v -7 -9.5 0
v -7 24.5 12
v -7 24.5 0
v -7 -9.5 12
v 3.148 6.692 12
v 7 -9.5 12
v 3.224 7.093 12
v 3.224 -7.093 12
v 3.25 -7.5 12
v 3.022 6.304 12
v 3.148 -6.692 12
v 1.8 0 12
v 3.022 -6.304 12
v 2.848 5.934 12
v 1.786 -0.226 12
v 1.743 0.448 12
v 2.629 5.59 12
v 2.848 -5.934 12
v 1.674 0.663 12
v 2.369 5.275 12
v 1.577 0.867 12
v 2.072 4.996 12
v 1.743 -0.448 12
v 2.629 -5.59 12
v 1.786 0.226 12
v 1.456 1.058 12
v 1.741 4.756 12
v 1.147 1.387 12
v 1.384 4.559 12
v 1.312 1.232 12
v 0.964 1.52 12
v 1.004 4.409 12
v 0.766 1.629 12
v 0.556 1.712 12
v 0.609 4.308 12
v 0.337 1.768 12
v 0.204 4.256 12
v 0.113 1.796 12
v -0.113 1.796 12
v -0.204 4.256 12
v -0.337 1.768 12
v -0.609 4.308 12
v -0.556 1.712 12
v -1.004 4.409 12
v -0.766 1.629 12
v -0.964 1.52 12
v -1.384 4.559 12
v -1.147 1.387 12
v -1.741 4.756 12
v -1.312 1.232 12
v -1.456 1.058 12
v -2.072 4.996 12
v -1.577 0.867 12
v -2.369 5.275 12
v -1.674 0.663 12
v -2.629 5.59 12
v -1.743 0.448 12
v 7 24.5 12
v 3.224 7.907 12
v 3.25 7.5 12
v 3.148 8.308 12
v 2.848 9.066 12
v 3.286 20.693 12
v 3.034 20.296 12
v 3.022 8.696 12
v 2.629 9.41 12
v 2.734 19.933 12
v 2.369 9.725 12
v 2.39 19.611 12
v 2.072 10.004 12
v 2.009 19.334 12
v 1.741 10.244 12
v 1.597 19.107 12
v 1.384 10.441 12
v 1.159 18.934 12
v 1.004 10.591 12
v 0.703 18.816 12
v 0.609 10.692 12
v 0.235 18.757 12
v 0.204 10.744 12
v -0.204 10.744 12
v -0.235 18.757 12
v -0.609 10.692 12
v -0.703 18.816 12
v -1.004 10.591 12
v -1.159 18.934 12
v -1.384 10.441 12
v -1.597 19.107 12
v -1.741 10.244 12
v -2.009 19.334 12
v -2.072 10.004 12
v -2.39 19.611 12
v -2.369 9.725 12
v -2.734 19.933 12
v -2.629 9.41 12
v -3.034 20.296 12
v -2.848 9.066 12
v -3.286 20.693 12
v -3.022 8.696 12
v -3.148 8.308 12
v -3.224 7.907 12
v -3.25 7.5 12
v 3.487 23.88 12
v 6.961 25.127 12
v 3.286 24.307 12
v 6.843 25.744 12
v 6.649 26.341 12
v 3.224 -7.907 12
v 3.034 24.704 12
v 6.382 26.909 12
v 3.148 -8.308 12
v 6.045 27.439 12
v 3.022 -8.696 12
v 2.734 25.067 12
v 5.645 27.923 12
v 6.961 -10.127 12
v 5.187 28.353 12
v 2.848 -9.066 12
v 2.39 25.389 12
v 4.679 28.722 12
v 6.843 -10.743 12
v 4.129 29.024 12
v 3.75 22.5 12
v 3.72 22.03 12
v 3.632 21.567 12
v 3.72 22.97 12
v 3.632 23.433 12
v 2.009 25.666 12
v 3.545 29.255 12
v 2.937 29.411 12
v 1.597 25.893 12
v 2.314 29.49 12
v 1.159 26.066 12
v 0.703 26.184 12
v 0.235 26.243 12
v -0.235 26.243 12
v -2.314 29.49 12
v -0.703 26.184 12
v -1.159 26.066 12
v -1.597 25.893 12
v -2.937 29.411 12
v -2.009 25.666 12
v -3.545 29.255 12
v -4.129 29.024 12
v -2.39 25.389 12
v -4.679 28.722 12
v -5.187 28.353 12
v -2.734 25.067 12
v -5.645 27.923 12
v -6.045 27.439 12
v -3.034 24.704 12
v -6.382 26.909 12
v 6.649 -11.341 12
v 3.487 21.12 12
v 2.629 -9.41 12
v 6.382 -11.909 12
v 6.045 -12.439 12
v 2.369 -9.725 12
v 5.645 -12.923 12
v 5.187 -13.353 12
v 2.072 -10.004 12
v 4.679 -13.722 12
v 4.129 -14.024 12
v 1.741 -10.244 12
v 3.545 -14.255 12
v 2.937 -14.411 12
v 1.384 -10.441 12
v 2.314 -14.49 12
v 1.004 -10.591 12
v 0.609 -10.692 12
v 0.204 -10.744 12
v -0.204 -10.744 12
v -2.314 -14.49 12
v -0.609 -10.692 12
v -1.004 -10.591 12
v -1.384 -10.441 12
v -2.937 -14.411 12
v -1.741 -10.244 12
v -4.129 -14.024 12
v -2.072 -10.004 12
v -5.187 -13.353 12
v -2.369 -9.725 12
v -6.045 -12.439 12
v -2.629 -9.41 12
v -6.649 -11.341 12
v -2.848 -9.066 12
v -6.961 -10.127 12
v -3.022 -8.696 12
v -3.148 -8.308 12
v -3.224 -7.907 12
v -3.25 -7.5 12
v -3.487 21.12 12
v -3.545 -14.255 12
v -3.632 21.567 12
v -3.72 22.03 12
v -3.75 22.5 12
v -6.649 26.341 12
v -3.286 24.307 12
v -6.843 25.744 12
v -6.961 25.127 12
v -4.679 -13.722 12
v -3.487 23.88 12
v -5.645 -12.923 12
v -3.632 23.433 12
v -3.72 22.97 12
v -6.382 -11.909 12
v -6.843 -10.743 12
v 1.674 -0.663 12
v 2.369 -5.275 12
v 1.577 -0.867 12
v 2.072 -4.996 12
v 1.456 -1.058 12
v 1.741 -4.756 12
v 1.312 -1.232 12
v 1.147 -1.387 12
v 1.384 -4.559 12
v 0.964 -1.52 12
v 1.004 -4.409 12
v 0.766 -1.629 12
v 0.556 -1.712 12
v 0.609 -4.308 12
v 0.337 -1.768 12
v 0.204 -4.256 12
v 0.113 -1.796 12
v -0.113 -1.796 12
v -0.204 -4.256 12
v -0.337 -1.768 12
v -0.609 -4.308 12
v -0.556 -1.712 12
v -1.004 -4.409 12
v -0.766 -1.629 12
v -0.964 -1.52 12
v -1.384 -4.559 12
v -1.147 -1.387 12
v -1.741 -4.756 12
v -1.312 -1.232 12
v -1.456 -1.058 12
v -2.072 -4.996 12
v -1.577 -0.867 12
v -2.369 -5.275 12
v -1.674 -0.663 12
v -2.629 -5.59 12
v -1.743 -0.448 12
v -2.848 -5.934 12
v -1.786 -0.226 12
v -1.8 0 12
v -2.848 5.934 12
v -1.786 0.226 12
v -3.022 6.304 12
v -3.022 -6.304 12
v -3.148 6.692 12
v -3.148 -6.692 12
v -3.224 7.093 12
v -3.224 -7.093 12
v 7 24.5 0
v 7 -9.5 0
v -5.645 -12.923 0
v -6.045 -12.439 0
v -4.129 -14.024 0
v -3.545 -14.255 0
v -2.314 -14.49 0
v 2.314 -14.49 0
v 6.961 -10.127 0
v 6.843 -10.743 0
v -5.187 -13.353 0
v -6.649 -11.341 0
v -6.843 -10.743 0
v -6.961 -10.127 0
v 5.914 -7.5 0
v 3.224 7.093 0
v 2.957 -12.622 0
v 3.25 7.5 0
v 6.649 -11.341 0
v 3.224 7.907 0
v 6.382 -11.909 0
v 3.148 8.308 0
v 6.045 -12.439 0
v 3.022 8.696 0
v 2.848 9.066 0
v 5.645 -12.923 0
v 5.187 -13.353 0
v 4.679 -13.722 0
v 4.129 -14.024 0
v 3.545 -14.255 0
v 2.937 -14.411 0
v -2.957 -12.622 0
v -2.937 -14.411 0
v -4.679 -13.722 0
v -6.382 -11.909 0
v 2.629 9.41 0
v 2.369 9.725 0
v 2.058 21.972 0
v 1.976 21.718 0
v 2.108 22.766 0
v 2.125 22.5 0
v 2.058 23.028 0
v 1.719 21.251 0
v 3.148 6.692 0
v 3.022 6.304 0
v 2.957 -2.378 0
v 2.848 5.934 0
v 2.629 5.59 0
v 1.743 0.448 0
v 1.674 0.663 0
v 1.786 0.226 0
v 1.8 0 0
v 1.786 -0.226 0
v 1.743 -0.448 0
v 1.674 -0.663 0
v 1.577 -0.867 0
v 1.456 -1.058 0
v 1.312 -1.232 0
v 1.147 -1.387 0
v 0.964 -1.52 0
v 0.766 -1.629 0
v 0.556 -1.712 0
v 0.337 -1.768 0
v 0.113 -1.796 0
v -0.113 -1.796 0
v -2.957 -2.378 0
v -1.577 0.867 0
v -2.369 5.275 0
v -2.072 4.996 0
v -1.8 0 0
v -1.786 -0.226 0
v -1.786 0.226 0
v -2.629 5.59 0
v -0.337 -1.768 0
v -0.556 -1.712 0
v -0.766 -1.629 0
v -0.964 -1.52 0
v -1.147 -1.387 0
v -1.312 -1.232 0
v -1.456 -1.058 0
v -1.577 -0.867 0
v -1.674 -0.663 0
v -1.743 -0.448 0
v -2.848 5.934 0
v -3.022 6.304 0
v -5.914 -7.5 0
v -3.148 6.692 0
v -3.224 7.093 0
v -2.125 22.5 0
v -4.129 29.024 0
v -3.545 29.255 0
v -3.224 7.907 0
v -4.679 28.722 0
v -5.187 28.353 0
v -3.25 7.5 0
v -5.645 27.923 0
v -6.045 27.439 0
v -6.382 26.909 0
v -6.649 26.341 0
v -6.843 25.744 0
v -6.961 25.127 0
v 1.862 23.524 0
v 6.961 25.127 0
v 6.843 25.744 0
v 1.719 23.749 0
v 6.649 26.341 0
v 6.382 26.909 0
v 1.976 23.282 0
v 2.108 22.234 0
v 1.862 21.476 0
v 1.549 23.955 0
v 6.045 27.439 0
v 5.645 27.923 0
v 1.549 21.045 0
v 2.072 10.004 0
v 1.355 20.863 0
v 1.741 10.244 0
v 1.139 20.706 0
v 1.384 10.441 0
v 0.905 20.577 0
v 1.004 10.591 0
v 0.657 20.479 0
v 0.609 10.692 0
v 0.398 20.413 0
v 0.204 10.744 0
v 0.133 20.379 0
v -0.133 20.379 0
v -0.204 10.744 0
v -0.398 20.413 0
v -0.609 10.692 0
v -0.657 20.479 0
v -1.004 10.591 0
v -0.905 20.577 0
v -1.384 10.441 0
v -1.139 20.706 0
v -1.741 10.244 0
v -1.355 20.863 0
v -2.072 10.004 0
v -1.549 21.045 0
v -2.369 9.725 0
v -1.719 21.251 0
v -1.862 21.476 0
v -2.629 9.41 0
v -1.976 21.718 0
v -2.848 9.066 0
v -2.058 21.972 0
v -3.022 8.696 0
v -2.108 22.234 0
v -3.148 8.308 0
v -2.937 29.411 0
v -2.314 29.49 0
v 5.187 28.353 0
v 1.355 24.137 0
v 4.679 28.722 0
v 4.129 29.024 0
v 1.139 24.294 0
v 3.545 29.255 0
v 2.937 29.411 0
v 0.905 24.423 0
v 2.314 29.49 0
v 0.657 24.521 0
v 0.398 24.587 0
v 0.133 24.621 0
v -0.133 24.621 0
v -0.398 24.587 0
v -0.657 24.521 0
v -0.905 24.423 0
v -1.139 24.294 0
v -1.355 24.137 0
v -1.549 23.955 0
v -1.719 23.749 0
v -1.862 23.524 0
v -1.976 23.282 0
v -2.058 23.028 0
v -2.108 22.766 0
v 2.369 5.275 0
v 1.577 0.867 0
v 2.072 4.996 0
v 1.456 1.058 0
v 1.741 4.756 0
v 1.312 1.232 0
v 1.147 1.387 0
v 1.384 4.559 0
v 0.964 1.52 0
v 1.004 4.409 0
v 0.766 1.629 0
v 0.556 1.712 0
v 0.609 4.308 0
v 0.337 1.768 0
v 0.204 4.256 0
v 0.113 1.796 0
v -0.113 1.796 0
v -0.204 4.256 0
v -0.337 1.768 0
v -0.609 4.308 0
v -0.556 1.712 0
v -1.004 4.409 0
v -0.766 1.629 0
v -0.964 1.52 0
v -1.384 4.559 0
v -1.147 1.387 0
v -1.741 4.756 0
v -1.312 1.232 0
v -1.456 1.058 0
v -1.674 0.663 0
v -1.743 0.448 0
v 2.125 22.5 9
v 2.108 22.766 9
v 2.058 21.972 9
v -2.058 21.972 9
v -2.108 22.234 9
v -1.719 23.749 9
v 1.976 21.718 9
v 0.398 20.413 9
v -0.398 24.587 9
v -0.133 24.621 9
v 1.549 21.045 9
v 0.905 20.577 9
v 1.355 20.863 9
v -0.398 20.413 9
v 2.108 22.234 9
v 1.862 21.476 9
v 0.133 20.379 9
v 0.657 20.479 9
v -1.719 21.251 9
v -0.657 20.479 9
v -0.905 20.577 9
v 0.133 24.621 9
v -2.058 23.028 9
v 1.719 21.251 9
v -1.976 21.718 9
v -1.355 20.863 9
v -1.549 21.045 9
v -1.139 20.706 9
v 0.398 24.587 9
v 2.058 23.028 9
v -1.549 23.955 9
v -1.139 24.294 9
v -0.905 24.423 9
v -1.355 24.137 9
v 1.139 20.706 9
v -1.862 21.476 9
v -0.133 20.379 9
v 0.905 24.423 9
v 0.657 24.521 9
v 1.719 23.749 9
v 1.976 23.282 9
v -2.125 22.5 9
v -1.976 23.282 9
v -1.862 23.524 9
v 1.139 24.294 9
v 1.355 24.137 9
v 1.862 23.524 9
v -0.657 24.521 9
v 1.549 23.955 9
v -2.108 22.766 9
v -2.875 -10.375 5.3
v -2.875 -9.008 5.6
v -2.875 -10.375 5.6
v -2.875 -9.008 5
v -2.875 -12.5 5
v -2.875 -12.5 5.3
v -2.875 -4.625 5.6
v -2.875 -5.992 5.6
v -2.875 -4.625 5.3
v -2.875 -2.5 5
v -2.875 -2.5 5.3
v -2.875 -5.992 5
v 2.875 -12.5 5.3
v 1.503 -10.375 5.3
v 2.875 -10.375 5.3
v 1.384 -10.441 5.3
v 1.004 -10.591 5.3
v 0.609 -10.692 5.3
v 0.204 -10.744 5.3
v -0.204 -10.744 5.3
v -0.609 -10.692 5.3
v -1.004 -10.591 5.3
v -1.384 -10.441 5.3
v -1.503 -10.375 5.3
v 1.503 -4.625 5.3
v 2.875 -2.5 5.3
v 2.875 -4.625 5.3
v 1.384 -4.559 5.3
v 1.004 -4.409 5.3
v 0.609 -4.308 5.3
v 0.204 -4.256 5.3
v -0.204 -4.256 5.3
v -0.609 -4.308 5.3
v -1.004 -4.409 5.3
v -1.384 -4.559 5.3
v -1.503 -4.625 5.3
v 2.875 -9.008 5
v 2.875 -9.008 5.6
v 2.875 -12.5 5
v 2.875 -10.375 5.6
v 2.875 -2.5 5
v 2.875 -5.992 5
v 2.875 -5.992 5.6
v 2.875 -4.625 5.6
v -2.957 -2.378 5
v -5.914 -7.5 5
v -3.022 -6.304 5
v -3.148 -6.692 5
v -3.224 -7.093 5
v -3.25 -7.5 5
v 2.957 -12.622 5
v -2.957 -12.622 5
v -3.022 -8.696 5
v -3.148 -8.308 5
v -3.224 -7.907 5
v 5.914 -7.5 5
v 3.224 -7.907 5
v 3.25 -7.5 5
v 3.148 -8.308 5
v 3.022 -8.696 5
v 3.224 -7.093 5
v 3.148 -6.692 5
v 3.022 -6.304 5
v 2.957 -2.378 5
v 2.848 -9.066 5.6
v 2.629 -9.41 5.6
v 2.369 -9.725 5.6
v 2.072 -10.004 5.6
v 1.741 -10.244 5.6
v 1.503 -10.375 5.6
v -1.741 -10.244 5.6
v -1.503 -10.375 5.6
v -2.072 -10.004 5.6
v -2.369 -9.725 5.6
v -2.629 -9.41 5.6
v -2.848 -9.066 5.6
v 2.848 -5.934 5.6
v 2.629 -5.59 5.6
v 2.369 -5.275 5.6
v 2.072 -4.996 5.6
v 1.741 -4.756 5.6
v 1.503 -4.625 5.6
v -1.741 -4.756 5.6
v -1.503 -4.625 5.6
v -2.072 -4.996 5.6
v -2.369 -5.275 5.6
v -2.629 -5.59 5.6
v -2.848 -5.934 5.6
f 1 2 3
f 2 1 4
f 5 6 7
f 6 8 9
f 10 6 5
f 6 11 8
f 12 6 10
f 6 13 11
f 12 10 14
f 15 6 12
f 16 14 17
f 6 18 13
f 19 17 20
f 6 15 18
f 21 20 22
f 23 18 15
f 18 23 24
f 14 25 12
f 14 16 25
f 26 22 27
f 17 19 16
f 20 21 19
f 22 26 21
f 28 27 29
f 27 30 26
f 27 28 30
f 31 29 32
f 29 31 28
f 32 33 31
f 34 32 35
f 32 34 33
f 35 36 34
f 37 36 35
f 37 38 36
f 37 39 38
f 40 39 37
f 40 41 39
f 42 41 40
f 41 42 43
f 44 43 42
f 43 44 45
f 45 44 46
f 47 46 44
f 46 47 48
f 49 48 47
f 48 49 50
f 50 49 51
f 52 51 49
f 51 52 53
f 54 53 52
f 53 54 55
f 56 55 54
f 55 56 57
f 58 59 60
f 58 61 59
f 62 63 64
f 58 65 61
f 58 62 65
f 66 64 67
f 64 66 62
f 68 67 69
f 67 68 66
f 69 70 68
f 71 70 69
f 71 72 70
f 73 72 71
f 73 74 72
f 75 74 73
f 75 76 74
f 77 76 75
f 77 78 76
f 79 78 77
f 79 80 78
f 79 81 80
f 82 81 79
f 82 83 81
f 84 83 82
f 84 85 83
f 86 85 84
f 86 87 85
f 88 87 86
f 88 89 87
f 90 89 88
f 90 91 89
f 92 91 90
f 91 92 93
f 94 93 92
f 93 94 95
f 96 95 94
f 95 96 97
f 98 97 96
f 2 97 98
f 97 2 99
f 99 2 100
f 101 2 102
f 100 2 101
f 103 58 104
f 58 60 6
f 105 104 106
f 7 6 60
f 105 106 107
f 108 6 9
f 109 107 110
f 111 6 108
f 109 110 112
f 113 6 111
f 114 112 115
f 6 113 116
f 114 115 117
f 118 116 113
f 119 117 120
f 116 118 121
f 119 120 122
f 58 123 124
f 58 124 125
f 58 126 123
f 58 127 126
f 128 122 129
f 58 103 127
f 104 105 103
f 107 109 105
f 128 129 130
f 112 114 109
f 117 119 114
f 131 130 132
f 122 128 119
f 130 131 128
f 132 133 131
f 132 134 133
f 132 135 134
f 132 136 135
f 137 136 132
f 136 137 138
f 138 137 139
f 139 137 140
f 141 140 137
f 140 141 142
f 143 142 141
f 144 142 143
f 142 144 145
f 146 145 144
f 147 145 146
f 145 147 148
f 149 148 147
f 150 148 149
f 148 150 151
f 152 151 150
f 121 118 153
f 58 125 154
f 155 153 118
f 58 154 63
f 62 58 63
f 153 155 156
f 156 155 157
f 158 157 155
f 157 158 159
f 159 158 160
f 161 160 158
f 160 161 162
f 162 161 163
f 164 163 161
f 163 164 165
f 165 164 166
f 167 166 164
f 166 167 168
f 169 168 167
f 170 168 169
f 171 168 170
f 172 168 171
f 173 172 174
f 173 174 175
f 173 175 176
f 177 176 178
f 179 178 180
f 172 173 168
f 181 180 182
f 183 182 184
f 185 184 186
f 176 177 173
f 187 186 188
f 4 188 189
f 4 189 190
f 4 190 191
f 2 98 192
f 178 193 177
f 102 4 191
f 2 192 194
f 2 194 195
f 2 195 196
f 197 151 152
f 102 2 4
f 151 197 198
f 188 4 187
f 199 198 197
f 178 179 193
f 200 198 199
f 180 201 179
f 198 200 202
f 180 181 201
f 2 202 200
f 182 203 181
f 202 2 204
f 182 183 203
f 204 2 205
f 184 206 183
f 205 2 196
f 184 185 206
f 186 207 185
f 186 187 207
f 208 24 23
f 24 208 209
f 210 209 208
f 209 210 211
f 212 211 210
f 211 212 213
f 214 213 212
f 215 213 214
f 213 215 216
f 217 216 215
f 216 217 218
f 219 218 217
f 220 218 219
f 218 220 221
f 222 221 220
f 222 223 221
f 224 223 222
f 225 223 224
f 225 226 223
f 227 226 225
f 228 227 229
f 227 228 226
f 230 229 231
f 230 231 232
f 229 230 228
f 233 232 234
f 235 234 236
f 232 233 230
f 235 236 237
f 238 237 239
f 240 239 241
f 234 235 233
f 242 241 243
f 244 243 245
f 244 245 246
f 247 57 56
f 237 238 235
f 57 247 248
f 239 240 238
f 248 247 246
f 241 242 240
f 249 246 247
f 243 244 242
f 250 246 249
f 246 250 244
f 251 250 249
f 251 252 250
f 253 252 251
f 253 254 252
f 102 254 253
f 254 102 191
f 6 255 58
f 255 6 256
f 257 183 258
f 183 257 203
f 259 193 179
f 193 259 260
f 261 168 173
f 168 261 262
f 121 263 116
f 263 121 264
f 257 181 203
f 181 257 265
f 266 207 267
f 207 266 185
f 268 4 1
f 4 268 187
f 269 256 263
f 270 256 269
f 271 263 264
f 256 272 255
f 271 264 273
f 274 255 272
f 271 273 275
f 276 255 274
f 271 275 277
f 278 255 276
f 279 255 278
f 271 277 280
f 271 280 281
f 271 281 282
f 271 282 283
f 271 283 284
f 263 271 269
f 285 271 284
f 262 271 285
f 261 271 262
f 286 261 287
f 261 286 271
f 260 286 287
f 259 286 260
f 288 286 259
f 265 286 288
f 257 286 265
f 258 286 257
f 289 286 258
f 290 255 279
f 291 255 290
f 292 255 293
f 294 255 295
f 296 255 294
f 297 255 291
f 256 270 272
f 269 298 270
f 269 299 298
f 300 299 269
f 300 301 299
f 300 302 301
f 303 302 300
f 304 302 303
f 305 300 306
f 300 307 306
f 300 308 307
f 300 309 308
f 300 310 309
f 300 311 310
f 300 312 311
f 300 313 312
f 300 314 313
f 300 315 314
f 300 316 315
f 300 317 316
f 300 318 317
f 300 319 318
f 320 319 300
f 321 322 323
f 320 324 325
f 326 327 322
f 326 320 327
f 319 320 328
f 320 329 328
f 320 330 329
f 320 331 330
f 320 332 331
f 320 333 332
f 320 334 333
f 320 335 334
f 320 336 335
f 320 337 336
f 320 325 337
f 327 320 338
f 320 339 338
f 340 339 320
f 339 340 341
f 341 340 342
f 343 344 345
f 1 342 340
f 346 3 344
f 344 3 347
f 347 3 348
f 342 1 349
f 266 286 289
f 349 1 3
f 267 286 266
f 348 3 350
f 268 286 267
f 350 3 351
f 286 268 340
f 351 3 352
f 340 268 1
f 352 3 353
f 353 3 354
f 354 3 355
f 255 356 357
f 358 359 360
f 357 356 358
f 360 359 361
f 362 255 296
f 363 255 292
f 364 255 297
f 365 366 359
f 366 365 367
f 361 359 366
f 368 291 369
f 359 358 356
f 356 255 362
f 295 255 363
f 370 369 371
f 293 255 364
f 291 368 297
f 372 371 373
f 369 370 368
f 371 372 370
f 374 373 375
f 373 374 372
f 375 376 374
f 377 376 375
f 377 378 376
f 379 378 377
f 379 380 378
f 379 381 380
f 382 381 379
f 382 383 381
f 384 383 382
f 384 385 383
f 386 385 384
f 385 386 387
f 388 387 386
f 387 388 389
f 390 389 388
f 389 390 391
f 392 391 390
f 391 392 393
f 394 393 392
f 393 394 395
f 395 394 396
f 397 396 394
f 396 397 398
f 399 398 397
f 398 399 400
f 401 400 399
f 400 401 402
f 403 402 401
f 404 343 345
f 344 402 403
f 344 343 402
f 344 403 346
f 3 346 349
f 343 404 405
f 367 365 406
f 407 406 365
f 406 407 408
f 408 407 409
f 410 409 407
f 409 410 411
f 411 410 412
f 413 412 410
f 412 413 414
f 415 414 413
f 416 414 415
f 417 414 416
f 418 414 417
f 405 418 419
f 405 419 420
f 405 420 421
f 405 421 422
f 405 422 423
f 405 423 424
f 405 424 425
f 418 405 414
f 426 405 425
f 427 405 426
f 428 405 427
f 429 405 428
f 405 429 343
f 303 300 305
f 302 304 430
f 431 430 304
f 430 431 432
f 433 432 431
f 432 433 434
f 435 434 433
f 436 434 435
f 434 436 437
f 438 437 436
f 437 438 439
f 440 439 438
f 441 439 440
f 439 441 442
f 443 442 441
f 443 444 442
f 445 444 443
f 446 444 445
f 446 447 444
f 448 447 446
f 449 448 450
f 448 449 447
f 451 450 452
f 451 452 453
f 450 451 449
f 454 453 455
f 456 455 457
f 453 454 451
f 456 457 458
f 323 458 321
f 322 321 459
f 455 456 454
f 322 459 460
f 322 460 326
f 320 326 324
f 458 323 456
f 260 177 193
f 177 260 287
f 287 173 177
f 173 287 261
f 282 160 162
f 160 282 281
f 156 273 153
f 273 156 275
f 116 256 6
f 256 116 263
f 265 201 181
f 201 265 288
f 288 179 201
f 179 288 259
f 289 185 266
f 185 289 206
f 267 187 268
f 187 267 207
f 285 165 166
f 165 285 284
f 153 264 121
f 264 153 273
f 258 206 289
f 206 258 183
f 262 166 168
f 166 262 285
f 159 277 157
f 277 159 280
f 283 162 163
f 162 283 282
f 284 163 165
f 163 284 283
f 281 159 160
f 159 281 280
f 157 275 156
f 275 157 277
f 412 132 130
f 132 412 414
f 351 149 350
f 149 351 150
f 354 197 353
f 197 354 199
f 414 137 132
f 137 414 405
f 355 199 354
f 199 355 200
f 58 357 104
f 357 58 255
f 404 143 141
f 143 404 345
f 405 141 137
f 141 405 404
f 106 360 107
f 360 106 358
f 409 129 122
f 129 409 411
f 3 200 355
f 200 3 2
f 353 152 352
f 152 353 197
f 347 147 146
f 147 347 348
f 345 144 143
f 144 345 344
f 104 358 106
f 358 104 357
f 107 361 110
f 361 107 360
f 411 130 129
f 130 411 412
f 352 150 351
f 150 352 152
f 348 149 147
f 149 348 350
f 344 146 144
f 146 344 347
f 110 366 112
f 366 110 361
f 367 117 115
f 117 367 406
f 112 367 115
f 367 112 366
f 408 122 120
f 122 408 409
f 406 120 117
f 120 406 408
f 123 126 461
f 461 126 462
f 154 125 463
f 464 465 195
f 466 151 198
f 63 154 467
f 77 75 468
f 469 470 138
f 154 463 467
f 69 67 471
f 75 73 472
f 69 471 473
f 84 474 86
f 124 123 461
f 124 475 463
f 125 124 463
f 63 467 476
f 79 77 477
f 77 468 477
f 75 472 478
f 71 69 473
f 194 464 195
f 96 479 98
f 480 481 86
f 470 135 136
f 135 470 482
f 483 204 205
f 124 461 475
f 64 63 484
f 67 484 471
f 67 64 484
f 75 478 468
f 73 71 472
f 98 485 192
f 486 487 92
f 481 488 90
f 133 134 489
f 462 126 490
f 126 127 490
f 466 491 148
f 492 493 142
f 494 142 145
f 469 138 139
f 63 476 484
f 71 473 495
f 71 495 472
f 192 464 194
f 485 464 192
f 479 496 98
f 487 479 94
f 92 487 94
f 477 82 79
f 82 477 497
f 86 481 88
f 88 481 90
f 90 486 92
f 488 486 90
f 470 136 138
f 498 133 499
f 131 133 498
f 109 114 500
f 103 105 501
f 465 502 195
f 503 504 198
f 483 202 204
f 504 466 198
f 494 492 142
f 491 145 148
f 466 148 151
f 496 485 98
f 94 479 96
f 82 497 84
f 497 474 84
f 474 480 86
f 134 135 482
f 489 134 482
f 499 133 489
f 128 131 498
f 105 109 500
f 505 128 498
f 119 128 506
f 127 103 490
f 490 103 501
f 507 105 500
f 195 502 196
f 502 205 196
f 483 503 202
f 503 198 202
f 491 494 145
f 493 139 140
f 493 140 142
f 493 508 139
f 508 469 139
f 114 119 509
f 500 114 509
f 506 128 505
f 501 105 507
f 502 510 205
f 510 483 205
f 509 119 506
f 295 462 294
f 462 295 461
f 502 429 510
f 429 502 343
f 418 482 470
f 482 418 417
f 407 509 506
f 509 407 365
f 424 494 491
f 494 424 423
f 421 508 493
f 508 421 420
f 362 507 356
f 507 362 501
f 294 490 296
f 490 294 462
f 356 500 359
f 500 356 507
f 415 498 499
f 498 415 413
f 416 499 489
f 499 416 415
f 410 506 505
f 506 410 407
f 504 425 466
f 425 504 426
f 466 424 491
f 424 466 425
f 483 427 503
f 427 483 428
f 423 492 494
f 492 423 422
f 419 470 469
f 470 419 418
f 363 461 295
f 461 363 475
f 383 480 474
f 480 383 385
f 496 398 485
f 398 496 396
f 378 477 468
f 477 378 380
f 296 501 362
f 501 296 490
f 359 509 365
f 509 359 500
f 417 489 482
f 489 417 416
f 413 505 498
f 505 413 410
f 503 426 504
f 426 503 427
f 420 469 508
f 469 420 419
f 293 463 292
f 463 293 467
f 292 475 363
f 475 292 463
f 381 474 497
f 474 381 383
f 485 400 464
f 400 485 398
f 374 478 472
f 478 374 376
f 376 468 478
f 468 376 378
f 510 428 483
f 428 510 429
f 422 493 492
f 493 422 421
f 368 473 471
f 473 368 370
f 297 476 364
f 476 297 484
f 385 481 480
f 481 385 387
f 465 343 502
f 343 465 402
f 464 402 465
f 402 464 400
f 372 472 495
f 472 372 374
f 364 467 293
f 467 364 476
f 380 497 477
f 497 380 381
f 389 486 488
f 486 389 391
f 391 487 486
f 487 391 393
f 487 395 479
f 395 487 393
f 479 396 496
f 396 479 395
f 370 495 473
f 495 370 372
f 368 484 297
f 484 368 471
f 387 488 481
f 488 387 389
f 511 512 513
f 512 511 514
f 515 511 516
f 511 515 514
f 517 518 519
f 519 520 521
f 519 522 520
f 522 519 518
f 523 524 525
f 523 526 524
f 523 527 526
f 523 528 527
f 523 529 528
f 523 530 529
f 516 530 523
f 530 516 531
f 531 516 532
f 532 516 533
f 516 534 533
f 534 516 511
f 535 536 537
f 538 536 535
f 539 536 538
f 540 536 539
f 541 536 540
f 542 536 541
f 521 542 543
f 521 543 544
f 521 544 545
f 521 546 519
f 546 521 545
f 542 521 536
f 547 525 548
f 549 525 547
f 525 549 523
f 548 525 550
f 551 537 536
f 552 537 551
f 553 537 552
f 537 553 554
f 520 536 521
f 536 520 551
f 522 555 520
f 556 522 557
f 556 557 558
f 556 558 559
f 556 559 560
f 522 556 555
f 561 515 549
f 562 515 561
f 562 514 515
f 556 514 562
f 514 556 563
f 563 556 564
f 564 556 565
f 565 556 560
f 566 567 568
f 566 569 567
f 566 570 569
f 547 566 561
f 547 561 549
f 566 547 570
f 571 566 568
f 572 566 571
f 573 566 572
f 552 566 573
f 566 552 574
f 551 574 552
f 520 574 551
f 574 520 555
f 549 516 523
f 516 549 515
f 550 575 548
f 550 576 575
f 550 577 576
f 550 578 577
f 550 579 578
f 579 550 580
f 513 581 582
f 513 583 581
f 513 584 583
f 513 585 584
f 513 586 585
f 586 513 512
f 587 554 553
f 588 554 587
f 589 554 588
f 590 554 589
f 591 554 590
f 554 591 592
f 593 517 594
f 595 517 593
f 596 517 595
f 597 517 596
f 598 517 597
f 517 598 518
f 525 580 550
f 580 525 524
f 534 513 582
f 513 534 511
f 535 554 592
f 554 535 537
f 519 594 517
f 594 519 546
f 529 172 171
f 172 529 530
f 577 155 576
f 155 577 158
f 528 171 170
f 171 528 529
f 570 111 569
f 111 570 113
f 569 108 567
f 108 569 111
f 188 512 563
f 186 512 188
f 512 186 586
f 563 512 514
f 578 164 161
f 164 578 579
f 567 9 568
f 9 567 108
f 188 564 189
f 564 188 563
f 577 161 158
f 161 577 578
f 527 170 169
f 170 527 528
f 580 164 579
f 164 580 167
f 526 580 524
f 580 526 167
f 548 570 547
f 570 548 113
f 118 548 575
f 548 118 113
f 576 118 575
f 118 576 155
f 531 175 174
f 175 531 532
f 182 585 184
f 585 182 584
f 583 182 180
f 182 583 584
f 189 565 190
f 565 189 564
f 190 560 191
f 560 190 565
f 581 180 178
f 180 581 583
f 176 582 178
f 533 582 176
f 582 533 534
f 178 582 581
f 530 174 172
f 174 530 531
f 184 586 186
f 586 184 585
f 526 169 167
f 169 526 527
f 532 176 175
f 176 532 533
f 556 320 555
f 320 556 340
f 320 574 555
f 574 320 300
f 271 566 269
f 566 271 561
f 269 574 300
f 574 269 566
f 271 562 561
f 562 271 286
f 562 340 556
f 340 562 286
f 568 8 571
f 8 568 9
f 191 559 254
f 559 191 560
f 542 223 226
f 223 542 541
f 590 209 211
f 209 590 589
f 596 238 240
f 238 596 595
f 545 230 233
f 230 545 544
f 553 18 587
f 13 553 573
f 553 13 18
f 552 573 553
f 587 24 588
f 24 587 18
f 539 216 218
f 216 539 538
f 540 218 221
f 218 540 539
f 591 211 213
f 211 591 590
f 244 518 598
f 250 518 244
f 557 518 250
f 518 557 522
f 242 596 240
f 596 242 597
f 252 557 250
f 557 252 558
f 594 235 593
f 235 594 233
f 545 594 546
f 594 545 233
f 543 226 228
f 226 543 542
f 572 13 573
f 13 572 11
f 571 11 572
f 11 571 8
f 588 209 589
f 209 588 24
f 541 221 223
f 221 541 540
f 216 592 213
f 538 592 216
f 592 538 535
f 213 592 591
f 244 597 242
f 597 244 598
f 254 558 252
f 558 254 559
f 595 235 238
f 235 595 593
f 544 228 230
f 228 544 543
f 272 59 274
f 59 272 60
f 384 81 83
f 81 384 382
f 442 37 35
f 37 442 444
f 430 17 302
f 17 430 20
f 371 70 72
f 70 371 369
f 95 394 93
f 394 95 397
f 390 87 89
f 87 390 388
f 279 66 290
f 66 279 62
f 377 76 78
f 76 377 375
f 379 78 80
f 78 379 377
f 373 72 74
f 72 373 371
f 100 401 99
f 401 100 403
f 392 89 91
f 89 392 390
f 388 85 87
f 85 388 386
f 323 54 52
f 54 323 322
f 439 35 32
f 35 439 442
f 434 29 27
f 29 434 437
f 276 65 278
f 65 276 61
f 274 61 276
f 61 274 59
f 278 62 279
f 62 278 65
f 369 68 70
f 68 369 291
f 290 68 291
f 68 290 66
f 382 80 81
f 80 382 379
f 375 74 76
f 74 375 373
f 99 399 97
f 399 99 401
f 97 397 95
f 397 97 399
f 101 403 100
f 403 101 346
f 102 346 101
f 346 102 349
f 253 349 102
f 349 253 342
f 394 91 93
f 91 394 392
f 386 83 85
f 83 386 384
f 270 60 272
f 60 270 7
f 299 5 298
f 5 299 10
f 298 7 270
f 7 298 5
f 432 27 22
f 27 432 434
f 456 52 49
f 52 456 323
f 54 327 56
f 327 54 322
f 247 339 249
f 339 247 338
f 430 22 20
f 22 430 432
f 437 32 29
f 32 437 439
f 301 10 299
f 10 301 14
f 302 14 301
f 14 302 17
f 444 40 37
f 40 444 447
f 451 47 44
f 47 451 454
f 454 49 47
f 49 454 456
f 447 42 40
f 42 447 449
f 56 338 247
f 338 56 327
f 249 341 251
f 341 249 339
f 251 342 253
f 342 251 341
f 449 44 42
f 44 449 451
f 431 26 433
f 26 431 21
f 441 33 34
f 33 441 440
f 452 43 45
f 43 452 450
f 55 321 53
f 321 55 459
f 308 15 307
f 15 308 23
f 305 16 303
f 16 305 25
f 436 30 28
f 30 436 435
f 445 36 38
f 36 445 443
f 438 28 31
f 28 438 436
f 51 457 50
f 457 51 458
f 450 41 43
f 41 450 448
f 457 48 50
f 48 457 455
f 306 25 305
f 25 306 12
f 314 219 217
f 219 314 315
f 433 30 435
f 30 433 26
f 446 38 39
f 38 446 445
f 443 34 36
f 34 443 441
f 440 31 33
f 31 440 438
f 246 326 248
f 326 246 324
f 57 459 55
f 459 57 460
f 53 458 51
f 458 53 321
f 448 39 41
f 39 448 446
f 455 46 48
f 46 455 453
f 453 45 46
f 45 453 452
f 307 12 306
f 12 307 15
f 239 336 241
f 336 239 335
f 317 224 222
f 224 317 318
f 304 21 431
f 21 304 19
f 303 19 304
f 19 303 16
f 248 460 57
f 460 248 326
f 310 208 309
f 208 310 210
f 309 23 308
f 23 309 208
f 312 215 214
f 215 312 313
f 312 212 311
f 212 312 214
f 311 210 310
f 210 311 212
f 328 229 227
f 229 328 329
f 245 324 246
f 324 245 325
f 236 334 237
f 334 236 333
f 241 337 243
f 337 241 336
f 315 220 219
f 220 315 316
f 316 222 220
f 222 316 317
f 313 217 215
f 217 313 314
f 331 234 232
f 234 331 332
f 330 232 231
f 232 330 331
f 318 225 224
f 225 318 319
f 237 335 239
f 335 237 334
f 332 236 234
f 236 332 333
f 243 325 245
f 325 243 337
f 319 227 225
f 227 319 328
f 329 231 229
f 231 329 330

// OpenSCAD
$fn = 50;


difference() {
	union() {
		hull() {
			translate(v = [-2.0000000000, 9.5000000000, 0]) {
				cylinder(h = 12, r = 5);
			}
			translate(v = [2.0000000000, 9.5000000000, 0]) {
				cylinder(h = 12, r = 5);
			}
			translate(v = [-2.0000000000, -9.5000000000, 0]) {
				cylinder(h = 12, r = 5);
			}
			translate(v = [2.0000000000, -9.5000000000, 0]) {
				cylinder(h = 12, r = 5);
			}
		}
		translate(v = [0.0000000000, 15.0000000000, 0]) {
			hull() {
				translate(v = [-2.0000000000, 9.5000000000, 0]) {
					cylinder(h = 12, r = 5);
				}
				translate(v = [2.0000000000, 9.5000000000, 0]) {
					cylinder(h = 12, r = 5);
				}
				translate(v = [-2.0000000000, -9.5000000000, 0]) {
					cylinder(h = 12, r = 5);
				}
				translate(v = [2.0000000000, -9.5000000000, 0]) {
					cylinder(h = 12, r = 5);
				}
			}
		}
		translate(v = [0.0000000000, 15.0000000000, 0]) {
			hull() {
				translate(v = [-2.0000000000, 9.5000000000, 0]) {
					cylinder(h = 12, r = 5);
				}
				translate(v = [2.0000000000, 9.5000000000, 0]) {
					cylinder(h = 12, r = 5);
				}
				translate(v = [-2.0000000000, -9.5000000000, 0]) {
					cylinder(h = 12, r = 5);
				}
				translate(v = [2.0000000000, -9.5000000000, 0]) {
					cylinder(h = 12, r = 5);
				}
			}
		}
	}
	union() {
		translate(v = [0.0000000000, 22.5000000000, 12]) {
			rotate(a = [0, 0, 0]) {
				difference() {
					union() {
						#translate(v = [0, 0, -12.0000000000]) {
							cylinder(h = 12, r = 2.0000000000);
						}
						#translate(v = [0, 0, -3]) {
							cylinder(h = 3, r1 = 2.1250000000, r2 = 3.7500000000);
						}
						#translate(v = [0, 0, -12.0000000000]) {
							cylinder(h = 12, r = 2.1250000000);
						}
						#translate(v = [0, 0, -12.0000000000]) {
							cylinder(h = 12, r = 2.0000000000);
						}
					}
					union();
				}
			}
		}
		translate(v = [0.0000000000, 22.5000000000, 12]) {
			rotate(a = [0, 0, 0]) {
				difference() {
					union() {
						#translate(v = [0, 0, -12.0000000000]) {
							cylinder(h = 12, r = 2.0000000000);
						}
						#translate(v = [0, 0, -3]) {
							cylinder(h = 3, r1 = 2.1250000000, r2 = 3.7500000000);
						}
						#translate(v = [0, 0, -12.0000000000]) {
							cylinder(h = 12, r = 2.1250000000);
						}
						#translate(v = [0, 0, -12.0000000000]) {
							cylinder(h = 12, r = 2.0000000000);
						}
					}
					union();
				}
			}
		}
		translate(v = [0.0000000000, -7.5000000000, 0]) {
			rotate(a = [0, 0, 0]) {
				difference() {
					union() {
						#translate(v = [-2.8750000000, -5.0000000000, -0.3000000000]) {
							cube(size = [5.7500000000, 10, 0.3000000000]);
						}
						#translate(v = [-2.8750000000, -2.8750000000, -0.6000000000]) {
							cube(size = [5.7500000000, 5.7500000000, 0.3000000000]);
						}
						#translate(v = [-2.8750000000, -5.0000000000, 5]) {
							cube(size = [5.7500000000, 10, 0.3000000000]);
						}
						#translate(v = [-2.8750000000, -2.8750000000, 5.3000000000]) {
							cube(size = [5.7500000000, 5.7500000000, 0.3000000000]);
						}
						#translate(v = [0, 0, -100.0000000000]) {
							cylinder(h = 200, r = 3.2500000000);
						}
						#linear_extrude(height = 5) {
							polygon(points = [[5.9142500000, 0.0000000000], [2.9571250000, 5.1218907443], [-2.9571250000, 5.1218907443], [-5.9142500000, 0.0000000000], [-2.9571250000, -5.1218907443], [2.9571250000, -5.1218907443]]);
						}
						#translate(v = [-2.8750000000, -5.0000000000, -0.3000000000]) {
							cube(size = [5.7500000000, 10, 0.3000000000]);
						}
						#translate(v = [-2.8750000000, -2.8750000000, -0.6000000000]) {
							cube(size = [5.7500000000, 5.7500000000, 0.3000000000]);
						}
						#translate(v = [-2.8750000000, -5.0000000000, 5]) {
							cube(size = [5.7500000000, 10, 0.3000000000]);
						}
						#translate(v = [-2.8750000000, -2.8750000000, 5.3000000000]) {
							cube(size = [5.7500000000, 5.7500000000, 0.3000000000]);
						}
						#translate(v = [0, 0, -100.0000000000]) {
							cylinder(h = 200, r = 3.2500000000);
						}
						#translate(v = [-2.8750000000, -5.0000000000, -0.3000000000]) {
							cube(size = [5.7500000000, 10, 0.3000000000]);
						}
						#translate(v = [-2.8750000000, -2.8750000000, -0.6000000000]) {
							cube(size = [5.7500000000, 5.7500000000, 0.3000000000]);
						}
						#translate(v = [-2.8750000000, -5.0000000000, 5]) {
							cube(size = [5.7500000000, 10, 0.3000000000]);
						}
						#translate(v = [-2.8750000000, -2.8750000000, 5.3000000000]) {
							cube(size = [5.7500000000, 5.7500000000, 0.3000000000]);
						}
						#translate(v = [0, 0, -100.0000000000]) {
							cylinder(h = 200, r = 3.2500000000);
						}
					}
					union();
				}
			}
		}
		translate(v = [0.0000000000, -7.5000000000, 0]) {
			translate(v = [0, 0, -100]) {
				cylinder(h = 200, r = 3.2500000000);
			}
		}
		translate(v = [0.0000000000, 7.5000000000, 0]) {
			translate(v = [0, 0, -100]) {
				cylinder(h = 200, r = 3.2500000000);
			}
		}
		translate(v = [0.0000000000, -7.5000000000, 0]) {
			translate(v = [0, 0, -100]) {
				cylinder(h = 200, r = 1.8000000000);
			}
		}
		translate(v = [0, 0, -100]) {
			cylinder(h = 200, r = 1.8000000000);
		}
		translate(v = [0.0000000000, 7.5000000000, 0]) {
			translate(v = [0, 0, -100]) {
				cylinder(h = 200, r = 1.8000000000);
			}
		}
	}
}
